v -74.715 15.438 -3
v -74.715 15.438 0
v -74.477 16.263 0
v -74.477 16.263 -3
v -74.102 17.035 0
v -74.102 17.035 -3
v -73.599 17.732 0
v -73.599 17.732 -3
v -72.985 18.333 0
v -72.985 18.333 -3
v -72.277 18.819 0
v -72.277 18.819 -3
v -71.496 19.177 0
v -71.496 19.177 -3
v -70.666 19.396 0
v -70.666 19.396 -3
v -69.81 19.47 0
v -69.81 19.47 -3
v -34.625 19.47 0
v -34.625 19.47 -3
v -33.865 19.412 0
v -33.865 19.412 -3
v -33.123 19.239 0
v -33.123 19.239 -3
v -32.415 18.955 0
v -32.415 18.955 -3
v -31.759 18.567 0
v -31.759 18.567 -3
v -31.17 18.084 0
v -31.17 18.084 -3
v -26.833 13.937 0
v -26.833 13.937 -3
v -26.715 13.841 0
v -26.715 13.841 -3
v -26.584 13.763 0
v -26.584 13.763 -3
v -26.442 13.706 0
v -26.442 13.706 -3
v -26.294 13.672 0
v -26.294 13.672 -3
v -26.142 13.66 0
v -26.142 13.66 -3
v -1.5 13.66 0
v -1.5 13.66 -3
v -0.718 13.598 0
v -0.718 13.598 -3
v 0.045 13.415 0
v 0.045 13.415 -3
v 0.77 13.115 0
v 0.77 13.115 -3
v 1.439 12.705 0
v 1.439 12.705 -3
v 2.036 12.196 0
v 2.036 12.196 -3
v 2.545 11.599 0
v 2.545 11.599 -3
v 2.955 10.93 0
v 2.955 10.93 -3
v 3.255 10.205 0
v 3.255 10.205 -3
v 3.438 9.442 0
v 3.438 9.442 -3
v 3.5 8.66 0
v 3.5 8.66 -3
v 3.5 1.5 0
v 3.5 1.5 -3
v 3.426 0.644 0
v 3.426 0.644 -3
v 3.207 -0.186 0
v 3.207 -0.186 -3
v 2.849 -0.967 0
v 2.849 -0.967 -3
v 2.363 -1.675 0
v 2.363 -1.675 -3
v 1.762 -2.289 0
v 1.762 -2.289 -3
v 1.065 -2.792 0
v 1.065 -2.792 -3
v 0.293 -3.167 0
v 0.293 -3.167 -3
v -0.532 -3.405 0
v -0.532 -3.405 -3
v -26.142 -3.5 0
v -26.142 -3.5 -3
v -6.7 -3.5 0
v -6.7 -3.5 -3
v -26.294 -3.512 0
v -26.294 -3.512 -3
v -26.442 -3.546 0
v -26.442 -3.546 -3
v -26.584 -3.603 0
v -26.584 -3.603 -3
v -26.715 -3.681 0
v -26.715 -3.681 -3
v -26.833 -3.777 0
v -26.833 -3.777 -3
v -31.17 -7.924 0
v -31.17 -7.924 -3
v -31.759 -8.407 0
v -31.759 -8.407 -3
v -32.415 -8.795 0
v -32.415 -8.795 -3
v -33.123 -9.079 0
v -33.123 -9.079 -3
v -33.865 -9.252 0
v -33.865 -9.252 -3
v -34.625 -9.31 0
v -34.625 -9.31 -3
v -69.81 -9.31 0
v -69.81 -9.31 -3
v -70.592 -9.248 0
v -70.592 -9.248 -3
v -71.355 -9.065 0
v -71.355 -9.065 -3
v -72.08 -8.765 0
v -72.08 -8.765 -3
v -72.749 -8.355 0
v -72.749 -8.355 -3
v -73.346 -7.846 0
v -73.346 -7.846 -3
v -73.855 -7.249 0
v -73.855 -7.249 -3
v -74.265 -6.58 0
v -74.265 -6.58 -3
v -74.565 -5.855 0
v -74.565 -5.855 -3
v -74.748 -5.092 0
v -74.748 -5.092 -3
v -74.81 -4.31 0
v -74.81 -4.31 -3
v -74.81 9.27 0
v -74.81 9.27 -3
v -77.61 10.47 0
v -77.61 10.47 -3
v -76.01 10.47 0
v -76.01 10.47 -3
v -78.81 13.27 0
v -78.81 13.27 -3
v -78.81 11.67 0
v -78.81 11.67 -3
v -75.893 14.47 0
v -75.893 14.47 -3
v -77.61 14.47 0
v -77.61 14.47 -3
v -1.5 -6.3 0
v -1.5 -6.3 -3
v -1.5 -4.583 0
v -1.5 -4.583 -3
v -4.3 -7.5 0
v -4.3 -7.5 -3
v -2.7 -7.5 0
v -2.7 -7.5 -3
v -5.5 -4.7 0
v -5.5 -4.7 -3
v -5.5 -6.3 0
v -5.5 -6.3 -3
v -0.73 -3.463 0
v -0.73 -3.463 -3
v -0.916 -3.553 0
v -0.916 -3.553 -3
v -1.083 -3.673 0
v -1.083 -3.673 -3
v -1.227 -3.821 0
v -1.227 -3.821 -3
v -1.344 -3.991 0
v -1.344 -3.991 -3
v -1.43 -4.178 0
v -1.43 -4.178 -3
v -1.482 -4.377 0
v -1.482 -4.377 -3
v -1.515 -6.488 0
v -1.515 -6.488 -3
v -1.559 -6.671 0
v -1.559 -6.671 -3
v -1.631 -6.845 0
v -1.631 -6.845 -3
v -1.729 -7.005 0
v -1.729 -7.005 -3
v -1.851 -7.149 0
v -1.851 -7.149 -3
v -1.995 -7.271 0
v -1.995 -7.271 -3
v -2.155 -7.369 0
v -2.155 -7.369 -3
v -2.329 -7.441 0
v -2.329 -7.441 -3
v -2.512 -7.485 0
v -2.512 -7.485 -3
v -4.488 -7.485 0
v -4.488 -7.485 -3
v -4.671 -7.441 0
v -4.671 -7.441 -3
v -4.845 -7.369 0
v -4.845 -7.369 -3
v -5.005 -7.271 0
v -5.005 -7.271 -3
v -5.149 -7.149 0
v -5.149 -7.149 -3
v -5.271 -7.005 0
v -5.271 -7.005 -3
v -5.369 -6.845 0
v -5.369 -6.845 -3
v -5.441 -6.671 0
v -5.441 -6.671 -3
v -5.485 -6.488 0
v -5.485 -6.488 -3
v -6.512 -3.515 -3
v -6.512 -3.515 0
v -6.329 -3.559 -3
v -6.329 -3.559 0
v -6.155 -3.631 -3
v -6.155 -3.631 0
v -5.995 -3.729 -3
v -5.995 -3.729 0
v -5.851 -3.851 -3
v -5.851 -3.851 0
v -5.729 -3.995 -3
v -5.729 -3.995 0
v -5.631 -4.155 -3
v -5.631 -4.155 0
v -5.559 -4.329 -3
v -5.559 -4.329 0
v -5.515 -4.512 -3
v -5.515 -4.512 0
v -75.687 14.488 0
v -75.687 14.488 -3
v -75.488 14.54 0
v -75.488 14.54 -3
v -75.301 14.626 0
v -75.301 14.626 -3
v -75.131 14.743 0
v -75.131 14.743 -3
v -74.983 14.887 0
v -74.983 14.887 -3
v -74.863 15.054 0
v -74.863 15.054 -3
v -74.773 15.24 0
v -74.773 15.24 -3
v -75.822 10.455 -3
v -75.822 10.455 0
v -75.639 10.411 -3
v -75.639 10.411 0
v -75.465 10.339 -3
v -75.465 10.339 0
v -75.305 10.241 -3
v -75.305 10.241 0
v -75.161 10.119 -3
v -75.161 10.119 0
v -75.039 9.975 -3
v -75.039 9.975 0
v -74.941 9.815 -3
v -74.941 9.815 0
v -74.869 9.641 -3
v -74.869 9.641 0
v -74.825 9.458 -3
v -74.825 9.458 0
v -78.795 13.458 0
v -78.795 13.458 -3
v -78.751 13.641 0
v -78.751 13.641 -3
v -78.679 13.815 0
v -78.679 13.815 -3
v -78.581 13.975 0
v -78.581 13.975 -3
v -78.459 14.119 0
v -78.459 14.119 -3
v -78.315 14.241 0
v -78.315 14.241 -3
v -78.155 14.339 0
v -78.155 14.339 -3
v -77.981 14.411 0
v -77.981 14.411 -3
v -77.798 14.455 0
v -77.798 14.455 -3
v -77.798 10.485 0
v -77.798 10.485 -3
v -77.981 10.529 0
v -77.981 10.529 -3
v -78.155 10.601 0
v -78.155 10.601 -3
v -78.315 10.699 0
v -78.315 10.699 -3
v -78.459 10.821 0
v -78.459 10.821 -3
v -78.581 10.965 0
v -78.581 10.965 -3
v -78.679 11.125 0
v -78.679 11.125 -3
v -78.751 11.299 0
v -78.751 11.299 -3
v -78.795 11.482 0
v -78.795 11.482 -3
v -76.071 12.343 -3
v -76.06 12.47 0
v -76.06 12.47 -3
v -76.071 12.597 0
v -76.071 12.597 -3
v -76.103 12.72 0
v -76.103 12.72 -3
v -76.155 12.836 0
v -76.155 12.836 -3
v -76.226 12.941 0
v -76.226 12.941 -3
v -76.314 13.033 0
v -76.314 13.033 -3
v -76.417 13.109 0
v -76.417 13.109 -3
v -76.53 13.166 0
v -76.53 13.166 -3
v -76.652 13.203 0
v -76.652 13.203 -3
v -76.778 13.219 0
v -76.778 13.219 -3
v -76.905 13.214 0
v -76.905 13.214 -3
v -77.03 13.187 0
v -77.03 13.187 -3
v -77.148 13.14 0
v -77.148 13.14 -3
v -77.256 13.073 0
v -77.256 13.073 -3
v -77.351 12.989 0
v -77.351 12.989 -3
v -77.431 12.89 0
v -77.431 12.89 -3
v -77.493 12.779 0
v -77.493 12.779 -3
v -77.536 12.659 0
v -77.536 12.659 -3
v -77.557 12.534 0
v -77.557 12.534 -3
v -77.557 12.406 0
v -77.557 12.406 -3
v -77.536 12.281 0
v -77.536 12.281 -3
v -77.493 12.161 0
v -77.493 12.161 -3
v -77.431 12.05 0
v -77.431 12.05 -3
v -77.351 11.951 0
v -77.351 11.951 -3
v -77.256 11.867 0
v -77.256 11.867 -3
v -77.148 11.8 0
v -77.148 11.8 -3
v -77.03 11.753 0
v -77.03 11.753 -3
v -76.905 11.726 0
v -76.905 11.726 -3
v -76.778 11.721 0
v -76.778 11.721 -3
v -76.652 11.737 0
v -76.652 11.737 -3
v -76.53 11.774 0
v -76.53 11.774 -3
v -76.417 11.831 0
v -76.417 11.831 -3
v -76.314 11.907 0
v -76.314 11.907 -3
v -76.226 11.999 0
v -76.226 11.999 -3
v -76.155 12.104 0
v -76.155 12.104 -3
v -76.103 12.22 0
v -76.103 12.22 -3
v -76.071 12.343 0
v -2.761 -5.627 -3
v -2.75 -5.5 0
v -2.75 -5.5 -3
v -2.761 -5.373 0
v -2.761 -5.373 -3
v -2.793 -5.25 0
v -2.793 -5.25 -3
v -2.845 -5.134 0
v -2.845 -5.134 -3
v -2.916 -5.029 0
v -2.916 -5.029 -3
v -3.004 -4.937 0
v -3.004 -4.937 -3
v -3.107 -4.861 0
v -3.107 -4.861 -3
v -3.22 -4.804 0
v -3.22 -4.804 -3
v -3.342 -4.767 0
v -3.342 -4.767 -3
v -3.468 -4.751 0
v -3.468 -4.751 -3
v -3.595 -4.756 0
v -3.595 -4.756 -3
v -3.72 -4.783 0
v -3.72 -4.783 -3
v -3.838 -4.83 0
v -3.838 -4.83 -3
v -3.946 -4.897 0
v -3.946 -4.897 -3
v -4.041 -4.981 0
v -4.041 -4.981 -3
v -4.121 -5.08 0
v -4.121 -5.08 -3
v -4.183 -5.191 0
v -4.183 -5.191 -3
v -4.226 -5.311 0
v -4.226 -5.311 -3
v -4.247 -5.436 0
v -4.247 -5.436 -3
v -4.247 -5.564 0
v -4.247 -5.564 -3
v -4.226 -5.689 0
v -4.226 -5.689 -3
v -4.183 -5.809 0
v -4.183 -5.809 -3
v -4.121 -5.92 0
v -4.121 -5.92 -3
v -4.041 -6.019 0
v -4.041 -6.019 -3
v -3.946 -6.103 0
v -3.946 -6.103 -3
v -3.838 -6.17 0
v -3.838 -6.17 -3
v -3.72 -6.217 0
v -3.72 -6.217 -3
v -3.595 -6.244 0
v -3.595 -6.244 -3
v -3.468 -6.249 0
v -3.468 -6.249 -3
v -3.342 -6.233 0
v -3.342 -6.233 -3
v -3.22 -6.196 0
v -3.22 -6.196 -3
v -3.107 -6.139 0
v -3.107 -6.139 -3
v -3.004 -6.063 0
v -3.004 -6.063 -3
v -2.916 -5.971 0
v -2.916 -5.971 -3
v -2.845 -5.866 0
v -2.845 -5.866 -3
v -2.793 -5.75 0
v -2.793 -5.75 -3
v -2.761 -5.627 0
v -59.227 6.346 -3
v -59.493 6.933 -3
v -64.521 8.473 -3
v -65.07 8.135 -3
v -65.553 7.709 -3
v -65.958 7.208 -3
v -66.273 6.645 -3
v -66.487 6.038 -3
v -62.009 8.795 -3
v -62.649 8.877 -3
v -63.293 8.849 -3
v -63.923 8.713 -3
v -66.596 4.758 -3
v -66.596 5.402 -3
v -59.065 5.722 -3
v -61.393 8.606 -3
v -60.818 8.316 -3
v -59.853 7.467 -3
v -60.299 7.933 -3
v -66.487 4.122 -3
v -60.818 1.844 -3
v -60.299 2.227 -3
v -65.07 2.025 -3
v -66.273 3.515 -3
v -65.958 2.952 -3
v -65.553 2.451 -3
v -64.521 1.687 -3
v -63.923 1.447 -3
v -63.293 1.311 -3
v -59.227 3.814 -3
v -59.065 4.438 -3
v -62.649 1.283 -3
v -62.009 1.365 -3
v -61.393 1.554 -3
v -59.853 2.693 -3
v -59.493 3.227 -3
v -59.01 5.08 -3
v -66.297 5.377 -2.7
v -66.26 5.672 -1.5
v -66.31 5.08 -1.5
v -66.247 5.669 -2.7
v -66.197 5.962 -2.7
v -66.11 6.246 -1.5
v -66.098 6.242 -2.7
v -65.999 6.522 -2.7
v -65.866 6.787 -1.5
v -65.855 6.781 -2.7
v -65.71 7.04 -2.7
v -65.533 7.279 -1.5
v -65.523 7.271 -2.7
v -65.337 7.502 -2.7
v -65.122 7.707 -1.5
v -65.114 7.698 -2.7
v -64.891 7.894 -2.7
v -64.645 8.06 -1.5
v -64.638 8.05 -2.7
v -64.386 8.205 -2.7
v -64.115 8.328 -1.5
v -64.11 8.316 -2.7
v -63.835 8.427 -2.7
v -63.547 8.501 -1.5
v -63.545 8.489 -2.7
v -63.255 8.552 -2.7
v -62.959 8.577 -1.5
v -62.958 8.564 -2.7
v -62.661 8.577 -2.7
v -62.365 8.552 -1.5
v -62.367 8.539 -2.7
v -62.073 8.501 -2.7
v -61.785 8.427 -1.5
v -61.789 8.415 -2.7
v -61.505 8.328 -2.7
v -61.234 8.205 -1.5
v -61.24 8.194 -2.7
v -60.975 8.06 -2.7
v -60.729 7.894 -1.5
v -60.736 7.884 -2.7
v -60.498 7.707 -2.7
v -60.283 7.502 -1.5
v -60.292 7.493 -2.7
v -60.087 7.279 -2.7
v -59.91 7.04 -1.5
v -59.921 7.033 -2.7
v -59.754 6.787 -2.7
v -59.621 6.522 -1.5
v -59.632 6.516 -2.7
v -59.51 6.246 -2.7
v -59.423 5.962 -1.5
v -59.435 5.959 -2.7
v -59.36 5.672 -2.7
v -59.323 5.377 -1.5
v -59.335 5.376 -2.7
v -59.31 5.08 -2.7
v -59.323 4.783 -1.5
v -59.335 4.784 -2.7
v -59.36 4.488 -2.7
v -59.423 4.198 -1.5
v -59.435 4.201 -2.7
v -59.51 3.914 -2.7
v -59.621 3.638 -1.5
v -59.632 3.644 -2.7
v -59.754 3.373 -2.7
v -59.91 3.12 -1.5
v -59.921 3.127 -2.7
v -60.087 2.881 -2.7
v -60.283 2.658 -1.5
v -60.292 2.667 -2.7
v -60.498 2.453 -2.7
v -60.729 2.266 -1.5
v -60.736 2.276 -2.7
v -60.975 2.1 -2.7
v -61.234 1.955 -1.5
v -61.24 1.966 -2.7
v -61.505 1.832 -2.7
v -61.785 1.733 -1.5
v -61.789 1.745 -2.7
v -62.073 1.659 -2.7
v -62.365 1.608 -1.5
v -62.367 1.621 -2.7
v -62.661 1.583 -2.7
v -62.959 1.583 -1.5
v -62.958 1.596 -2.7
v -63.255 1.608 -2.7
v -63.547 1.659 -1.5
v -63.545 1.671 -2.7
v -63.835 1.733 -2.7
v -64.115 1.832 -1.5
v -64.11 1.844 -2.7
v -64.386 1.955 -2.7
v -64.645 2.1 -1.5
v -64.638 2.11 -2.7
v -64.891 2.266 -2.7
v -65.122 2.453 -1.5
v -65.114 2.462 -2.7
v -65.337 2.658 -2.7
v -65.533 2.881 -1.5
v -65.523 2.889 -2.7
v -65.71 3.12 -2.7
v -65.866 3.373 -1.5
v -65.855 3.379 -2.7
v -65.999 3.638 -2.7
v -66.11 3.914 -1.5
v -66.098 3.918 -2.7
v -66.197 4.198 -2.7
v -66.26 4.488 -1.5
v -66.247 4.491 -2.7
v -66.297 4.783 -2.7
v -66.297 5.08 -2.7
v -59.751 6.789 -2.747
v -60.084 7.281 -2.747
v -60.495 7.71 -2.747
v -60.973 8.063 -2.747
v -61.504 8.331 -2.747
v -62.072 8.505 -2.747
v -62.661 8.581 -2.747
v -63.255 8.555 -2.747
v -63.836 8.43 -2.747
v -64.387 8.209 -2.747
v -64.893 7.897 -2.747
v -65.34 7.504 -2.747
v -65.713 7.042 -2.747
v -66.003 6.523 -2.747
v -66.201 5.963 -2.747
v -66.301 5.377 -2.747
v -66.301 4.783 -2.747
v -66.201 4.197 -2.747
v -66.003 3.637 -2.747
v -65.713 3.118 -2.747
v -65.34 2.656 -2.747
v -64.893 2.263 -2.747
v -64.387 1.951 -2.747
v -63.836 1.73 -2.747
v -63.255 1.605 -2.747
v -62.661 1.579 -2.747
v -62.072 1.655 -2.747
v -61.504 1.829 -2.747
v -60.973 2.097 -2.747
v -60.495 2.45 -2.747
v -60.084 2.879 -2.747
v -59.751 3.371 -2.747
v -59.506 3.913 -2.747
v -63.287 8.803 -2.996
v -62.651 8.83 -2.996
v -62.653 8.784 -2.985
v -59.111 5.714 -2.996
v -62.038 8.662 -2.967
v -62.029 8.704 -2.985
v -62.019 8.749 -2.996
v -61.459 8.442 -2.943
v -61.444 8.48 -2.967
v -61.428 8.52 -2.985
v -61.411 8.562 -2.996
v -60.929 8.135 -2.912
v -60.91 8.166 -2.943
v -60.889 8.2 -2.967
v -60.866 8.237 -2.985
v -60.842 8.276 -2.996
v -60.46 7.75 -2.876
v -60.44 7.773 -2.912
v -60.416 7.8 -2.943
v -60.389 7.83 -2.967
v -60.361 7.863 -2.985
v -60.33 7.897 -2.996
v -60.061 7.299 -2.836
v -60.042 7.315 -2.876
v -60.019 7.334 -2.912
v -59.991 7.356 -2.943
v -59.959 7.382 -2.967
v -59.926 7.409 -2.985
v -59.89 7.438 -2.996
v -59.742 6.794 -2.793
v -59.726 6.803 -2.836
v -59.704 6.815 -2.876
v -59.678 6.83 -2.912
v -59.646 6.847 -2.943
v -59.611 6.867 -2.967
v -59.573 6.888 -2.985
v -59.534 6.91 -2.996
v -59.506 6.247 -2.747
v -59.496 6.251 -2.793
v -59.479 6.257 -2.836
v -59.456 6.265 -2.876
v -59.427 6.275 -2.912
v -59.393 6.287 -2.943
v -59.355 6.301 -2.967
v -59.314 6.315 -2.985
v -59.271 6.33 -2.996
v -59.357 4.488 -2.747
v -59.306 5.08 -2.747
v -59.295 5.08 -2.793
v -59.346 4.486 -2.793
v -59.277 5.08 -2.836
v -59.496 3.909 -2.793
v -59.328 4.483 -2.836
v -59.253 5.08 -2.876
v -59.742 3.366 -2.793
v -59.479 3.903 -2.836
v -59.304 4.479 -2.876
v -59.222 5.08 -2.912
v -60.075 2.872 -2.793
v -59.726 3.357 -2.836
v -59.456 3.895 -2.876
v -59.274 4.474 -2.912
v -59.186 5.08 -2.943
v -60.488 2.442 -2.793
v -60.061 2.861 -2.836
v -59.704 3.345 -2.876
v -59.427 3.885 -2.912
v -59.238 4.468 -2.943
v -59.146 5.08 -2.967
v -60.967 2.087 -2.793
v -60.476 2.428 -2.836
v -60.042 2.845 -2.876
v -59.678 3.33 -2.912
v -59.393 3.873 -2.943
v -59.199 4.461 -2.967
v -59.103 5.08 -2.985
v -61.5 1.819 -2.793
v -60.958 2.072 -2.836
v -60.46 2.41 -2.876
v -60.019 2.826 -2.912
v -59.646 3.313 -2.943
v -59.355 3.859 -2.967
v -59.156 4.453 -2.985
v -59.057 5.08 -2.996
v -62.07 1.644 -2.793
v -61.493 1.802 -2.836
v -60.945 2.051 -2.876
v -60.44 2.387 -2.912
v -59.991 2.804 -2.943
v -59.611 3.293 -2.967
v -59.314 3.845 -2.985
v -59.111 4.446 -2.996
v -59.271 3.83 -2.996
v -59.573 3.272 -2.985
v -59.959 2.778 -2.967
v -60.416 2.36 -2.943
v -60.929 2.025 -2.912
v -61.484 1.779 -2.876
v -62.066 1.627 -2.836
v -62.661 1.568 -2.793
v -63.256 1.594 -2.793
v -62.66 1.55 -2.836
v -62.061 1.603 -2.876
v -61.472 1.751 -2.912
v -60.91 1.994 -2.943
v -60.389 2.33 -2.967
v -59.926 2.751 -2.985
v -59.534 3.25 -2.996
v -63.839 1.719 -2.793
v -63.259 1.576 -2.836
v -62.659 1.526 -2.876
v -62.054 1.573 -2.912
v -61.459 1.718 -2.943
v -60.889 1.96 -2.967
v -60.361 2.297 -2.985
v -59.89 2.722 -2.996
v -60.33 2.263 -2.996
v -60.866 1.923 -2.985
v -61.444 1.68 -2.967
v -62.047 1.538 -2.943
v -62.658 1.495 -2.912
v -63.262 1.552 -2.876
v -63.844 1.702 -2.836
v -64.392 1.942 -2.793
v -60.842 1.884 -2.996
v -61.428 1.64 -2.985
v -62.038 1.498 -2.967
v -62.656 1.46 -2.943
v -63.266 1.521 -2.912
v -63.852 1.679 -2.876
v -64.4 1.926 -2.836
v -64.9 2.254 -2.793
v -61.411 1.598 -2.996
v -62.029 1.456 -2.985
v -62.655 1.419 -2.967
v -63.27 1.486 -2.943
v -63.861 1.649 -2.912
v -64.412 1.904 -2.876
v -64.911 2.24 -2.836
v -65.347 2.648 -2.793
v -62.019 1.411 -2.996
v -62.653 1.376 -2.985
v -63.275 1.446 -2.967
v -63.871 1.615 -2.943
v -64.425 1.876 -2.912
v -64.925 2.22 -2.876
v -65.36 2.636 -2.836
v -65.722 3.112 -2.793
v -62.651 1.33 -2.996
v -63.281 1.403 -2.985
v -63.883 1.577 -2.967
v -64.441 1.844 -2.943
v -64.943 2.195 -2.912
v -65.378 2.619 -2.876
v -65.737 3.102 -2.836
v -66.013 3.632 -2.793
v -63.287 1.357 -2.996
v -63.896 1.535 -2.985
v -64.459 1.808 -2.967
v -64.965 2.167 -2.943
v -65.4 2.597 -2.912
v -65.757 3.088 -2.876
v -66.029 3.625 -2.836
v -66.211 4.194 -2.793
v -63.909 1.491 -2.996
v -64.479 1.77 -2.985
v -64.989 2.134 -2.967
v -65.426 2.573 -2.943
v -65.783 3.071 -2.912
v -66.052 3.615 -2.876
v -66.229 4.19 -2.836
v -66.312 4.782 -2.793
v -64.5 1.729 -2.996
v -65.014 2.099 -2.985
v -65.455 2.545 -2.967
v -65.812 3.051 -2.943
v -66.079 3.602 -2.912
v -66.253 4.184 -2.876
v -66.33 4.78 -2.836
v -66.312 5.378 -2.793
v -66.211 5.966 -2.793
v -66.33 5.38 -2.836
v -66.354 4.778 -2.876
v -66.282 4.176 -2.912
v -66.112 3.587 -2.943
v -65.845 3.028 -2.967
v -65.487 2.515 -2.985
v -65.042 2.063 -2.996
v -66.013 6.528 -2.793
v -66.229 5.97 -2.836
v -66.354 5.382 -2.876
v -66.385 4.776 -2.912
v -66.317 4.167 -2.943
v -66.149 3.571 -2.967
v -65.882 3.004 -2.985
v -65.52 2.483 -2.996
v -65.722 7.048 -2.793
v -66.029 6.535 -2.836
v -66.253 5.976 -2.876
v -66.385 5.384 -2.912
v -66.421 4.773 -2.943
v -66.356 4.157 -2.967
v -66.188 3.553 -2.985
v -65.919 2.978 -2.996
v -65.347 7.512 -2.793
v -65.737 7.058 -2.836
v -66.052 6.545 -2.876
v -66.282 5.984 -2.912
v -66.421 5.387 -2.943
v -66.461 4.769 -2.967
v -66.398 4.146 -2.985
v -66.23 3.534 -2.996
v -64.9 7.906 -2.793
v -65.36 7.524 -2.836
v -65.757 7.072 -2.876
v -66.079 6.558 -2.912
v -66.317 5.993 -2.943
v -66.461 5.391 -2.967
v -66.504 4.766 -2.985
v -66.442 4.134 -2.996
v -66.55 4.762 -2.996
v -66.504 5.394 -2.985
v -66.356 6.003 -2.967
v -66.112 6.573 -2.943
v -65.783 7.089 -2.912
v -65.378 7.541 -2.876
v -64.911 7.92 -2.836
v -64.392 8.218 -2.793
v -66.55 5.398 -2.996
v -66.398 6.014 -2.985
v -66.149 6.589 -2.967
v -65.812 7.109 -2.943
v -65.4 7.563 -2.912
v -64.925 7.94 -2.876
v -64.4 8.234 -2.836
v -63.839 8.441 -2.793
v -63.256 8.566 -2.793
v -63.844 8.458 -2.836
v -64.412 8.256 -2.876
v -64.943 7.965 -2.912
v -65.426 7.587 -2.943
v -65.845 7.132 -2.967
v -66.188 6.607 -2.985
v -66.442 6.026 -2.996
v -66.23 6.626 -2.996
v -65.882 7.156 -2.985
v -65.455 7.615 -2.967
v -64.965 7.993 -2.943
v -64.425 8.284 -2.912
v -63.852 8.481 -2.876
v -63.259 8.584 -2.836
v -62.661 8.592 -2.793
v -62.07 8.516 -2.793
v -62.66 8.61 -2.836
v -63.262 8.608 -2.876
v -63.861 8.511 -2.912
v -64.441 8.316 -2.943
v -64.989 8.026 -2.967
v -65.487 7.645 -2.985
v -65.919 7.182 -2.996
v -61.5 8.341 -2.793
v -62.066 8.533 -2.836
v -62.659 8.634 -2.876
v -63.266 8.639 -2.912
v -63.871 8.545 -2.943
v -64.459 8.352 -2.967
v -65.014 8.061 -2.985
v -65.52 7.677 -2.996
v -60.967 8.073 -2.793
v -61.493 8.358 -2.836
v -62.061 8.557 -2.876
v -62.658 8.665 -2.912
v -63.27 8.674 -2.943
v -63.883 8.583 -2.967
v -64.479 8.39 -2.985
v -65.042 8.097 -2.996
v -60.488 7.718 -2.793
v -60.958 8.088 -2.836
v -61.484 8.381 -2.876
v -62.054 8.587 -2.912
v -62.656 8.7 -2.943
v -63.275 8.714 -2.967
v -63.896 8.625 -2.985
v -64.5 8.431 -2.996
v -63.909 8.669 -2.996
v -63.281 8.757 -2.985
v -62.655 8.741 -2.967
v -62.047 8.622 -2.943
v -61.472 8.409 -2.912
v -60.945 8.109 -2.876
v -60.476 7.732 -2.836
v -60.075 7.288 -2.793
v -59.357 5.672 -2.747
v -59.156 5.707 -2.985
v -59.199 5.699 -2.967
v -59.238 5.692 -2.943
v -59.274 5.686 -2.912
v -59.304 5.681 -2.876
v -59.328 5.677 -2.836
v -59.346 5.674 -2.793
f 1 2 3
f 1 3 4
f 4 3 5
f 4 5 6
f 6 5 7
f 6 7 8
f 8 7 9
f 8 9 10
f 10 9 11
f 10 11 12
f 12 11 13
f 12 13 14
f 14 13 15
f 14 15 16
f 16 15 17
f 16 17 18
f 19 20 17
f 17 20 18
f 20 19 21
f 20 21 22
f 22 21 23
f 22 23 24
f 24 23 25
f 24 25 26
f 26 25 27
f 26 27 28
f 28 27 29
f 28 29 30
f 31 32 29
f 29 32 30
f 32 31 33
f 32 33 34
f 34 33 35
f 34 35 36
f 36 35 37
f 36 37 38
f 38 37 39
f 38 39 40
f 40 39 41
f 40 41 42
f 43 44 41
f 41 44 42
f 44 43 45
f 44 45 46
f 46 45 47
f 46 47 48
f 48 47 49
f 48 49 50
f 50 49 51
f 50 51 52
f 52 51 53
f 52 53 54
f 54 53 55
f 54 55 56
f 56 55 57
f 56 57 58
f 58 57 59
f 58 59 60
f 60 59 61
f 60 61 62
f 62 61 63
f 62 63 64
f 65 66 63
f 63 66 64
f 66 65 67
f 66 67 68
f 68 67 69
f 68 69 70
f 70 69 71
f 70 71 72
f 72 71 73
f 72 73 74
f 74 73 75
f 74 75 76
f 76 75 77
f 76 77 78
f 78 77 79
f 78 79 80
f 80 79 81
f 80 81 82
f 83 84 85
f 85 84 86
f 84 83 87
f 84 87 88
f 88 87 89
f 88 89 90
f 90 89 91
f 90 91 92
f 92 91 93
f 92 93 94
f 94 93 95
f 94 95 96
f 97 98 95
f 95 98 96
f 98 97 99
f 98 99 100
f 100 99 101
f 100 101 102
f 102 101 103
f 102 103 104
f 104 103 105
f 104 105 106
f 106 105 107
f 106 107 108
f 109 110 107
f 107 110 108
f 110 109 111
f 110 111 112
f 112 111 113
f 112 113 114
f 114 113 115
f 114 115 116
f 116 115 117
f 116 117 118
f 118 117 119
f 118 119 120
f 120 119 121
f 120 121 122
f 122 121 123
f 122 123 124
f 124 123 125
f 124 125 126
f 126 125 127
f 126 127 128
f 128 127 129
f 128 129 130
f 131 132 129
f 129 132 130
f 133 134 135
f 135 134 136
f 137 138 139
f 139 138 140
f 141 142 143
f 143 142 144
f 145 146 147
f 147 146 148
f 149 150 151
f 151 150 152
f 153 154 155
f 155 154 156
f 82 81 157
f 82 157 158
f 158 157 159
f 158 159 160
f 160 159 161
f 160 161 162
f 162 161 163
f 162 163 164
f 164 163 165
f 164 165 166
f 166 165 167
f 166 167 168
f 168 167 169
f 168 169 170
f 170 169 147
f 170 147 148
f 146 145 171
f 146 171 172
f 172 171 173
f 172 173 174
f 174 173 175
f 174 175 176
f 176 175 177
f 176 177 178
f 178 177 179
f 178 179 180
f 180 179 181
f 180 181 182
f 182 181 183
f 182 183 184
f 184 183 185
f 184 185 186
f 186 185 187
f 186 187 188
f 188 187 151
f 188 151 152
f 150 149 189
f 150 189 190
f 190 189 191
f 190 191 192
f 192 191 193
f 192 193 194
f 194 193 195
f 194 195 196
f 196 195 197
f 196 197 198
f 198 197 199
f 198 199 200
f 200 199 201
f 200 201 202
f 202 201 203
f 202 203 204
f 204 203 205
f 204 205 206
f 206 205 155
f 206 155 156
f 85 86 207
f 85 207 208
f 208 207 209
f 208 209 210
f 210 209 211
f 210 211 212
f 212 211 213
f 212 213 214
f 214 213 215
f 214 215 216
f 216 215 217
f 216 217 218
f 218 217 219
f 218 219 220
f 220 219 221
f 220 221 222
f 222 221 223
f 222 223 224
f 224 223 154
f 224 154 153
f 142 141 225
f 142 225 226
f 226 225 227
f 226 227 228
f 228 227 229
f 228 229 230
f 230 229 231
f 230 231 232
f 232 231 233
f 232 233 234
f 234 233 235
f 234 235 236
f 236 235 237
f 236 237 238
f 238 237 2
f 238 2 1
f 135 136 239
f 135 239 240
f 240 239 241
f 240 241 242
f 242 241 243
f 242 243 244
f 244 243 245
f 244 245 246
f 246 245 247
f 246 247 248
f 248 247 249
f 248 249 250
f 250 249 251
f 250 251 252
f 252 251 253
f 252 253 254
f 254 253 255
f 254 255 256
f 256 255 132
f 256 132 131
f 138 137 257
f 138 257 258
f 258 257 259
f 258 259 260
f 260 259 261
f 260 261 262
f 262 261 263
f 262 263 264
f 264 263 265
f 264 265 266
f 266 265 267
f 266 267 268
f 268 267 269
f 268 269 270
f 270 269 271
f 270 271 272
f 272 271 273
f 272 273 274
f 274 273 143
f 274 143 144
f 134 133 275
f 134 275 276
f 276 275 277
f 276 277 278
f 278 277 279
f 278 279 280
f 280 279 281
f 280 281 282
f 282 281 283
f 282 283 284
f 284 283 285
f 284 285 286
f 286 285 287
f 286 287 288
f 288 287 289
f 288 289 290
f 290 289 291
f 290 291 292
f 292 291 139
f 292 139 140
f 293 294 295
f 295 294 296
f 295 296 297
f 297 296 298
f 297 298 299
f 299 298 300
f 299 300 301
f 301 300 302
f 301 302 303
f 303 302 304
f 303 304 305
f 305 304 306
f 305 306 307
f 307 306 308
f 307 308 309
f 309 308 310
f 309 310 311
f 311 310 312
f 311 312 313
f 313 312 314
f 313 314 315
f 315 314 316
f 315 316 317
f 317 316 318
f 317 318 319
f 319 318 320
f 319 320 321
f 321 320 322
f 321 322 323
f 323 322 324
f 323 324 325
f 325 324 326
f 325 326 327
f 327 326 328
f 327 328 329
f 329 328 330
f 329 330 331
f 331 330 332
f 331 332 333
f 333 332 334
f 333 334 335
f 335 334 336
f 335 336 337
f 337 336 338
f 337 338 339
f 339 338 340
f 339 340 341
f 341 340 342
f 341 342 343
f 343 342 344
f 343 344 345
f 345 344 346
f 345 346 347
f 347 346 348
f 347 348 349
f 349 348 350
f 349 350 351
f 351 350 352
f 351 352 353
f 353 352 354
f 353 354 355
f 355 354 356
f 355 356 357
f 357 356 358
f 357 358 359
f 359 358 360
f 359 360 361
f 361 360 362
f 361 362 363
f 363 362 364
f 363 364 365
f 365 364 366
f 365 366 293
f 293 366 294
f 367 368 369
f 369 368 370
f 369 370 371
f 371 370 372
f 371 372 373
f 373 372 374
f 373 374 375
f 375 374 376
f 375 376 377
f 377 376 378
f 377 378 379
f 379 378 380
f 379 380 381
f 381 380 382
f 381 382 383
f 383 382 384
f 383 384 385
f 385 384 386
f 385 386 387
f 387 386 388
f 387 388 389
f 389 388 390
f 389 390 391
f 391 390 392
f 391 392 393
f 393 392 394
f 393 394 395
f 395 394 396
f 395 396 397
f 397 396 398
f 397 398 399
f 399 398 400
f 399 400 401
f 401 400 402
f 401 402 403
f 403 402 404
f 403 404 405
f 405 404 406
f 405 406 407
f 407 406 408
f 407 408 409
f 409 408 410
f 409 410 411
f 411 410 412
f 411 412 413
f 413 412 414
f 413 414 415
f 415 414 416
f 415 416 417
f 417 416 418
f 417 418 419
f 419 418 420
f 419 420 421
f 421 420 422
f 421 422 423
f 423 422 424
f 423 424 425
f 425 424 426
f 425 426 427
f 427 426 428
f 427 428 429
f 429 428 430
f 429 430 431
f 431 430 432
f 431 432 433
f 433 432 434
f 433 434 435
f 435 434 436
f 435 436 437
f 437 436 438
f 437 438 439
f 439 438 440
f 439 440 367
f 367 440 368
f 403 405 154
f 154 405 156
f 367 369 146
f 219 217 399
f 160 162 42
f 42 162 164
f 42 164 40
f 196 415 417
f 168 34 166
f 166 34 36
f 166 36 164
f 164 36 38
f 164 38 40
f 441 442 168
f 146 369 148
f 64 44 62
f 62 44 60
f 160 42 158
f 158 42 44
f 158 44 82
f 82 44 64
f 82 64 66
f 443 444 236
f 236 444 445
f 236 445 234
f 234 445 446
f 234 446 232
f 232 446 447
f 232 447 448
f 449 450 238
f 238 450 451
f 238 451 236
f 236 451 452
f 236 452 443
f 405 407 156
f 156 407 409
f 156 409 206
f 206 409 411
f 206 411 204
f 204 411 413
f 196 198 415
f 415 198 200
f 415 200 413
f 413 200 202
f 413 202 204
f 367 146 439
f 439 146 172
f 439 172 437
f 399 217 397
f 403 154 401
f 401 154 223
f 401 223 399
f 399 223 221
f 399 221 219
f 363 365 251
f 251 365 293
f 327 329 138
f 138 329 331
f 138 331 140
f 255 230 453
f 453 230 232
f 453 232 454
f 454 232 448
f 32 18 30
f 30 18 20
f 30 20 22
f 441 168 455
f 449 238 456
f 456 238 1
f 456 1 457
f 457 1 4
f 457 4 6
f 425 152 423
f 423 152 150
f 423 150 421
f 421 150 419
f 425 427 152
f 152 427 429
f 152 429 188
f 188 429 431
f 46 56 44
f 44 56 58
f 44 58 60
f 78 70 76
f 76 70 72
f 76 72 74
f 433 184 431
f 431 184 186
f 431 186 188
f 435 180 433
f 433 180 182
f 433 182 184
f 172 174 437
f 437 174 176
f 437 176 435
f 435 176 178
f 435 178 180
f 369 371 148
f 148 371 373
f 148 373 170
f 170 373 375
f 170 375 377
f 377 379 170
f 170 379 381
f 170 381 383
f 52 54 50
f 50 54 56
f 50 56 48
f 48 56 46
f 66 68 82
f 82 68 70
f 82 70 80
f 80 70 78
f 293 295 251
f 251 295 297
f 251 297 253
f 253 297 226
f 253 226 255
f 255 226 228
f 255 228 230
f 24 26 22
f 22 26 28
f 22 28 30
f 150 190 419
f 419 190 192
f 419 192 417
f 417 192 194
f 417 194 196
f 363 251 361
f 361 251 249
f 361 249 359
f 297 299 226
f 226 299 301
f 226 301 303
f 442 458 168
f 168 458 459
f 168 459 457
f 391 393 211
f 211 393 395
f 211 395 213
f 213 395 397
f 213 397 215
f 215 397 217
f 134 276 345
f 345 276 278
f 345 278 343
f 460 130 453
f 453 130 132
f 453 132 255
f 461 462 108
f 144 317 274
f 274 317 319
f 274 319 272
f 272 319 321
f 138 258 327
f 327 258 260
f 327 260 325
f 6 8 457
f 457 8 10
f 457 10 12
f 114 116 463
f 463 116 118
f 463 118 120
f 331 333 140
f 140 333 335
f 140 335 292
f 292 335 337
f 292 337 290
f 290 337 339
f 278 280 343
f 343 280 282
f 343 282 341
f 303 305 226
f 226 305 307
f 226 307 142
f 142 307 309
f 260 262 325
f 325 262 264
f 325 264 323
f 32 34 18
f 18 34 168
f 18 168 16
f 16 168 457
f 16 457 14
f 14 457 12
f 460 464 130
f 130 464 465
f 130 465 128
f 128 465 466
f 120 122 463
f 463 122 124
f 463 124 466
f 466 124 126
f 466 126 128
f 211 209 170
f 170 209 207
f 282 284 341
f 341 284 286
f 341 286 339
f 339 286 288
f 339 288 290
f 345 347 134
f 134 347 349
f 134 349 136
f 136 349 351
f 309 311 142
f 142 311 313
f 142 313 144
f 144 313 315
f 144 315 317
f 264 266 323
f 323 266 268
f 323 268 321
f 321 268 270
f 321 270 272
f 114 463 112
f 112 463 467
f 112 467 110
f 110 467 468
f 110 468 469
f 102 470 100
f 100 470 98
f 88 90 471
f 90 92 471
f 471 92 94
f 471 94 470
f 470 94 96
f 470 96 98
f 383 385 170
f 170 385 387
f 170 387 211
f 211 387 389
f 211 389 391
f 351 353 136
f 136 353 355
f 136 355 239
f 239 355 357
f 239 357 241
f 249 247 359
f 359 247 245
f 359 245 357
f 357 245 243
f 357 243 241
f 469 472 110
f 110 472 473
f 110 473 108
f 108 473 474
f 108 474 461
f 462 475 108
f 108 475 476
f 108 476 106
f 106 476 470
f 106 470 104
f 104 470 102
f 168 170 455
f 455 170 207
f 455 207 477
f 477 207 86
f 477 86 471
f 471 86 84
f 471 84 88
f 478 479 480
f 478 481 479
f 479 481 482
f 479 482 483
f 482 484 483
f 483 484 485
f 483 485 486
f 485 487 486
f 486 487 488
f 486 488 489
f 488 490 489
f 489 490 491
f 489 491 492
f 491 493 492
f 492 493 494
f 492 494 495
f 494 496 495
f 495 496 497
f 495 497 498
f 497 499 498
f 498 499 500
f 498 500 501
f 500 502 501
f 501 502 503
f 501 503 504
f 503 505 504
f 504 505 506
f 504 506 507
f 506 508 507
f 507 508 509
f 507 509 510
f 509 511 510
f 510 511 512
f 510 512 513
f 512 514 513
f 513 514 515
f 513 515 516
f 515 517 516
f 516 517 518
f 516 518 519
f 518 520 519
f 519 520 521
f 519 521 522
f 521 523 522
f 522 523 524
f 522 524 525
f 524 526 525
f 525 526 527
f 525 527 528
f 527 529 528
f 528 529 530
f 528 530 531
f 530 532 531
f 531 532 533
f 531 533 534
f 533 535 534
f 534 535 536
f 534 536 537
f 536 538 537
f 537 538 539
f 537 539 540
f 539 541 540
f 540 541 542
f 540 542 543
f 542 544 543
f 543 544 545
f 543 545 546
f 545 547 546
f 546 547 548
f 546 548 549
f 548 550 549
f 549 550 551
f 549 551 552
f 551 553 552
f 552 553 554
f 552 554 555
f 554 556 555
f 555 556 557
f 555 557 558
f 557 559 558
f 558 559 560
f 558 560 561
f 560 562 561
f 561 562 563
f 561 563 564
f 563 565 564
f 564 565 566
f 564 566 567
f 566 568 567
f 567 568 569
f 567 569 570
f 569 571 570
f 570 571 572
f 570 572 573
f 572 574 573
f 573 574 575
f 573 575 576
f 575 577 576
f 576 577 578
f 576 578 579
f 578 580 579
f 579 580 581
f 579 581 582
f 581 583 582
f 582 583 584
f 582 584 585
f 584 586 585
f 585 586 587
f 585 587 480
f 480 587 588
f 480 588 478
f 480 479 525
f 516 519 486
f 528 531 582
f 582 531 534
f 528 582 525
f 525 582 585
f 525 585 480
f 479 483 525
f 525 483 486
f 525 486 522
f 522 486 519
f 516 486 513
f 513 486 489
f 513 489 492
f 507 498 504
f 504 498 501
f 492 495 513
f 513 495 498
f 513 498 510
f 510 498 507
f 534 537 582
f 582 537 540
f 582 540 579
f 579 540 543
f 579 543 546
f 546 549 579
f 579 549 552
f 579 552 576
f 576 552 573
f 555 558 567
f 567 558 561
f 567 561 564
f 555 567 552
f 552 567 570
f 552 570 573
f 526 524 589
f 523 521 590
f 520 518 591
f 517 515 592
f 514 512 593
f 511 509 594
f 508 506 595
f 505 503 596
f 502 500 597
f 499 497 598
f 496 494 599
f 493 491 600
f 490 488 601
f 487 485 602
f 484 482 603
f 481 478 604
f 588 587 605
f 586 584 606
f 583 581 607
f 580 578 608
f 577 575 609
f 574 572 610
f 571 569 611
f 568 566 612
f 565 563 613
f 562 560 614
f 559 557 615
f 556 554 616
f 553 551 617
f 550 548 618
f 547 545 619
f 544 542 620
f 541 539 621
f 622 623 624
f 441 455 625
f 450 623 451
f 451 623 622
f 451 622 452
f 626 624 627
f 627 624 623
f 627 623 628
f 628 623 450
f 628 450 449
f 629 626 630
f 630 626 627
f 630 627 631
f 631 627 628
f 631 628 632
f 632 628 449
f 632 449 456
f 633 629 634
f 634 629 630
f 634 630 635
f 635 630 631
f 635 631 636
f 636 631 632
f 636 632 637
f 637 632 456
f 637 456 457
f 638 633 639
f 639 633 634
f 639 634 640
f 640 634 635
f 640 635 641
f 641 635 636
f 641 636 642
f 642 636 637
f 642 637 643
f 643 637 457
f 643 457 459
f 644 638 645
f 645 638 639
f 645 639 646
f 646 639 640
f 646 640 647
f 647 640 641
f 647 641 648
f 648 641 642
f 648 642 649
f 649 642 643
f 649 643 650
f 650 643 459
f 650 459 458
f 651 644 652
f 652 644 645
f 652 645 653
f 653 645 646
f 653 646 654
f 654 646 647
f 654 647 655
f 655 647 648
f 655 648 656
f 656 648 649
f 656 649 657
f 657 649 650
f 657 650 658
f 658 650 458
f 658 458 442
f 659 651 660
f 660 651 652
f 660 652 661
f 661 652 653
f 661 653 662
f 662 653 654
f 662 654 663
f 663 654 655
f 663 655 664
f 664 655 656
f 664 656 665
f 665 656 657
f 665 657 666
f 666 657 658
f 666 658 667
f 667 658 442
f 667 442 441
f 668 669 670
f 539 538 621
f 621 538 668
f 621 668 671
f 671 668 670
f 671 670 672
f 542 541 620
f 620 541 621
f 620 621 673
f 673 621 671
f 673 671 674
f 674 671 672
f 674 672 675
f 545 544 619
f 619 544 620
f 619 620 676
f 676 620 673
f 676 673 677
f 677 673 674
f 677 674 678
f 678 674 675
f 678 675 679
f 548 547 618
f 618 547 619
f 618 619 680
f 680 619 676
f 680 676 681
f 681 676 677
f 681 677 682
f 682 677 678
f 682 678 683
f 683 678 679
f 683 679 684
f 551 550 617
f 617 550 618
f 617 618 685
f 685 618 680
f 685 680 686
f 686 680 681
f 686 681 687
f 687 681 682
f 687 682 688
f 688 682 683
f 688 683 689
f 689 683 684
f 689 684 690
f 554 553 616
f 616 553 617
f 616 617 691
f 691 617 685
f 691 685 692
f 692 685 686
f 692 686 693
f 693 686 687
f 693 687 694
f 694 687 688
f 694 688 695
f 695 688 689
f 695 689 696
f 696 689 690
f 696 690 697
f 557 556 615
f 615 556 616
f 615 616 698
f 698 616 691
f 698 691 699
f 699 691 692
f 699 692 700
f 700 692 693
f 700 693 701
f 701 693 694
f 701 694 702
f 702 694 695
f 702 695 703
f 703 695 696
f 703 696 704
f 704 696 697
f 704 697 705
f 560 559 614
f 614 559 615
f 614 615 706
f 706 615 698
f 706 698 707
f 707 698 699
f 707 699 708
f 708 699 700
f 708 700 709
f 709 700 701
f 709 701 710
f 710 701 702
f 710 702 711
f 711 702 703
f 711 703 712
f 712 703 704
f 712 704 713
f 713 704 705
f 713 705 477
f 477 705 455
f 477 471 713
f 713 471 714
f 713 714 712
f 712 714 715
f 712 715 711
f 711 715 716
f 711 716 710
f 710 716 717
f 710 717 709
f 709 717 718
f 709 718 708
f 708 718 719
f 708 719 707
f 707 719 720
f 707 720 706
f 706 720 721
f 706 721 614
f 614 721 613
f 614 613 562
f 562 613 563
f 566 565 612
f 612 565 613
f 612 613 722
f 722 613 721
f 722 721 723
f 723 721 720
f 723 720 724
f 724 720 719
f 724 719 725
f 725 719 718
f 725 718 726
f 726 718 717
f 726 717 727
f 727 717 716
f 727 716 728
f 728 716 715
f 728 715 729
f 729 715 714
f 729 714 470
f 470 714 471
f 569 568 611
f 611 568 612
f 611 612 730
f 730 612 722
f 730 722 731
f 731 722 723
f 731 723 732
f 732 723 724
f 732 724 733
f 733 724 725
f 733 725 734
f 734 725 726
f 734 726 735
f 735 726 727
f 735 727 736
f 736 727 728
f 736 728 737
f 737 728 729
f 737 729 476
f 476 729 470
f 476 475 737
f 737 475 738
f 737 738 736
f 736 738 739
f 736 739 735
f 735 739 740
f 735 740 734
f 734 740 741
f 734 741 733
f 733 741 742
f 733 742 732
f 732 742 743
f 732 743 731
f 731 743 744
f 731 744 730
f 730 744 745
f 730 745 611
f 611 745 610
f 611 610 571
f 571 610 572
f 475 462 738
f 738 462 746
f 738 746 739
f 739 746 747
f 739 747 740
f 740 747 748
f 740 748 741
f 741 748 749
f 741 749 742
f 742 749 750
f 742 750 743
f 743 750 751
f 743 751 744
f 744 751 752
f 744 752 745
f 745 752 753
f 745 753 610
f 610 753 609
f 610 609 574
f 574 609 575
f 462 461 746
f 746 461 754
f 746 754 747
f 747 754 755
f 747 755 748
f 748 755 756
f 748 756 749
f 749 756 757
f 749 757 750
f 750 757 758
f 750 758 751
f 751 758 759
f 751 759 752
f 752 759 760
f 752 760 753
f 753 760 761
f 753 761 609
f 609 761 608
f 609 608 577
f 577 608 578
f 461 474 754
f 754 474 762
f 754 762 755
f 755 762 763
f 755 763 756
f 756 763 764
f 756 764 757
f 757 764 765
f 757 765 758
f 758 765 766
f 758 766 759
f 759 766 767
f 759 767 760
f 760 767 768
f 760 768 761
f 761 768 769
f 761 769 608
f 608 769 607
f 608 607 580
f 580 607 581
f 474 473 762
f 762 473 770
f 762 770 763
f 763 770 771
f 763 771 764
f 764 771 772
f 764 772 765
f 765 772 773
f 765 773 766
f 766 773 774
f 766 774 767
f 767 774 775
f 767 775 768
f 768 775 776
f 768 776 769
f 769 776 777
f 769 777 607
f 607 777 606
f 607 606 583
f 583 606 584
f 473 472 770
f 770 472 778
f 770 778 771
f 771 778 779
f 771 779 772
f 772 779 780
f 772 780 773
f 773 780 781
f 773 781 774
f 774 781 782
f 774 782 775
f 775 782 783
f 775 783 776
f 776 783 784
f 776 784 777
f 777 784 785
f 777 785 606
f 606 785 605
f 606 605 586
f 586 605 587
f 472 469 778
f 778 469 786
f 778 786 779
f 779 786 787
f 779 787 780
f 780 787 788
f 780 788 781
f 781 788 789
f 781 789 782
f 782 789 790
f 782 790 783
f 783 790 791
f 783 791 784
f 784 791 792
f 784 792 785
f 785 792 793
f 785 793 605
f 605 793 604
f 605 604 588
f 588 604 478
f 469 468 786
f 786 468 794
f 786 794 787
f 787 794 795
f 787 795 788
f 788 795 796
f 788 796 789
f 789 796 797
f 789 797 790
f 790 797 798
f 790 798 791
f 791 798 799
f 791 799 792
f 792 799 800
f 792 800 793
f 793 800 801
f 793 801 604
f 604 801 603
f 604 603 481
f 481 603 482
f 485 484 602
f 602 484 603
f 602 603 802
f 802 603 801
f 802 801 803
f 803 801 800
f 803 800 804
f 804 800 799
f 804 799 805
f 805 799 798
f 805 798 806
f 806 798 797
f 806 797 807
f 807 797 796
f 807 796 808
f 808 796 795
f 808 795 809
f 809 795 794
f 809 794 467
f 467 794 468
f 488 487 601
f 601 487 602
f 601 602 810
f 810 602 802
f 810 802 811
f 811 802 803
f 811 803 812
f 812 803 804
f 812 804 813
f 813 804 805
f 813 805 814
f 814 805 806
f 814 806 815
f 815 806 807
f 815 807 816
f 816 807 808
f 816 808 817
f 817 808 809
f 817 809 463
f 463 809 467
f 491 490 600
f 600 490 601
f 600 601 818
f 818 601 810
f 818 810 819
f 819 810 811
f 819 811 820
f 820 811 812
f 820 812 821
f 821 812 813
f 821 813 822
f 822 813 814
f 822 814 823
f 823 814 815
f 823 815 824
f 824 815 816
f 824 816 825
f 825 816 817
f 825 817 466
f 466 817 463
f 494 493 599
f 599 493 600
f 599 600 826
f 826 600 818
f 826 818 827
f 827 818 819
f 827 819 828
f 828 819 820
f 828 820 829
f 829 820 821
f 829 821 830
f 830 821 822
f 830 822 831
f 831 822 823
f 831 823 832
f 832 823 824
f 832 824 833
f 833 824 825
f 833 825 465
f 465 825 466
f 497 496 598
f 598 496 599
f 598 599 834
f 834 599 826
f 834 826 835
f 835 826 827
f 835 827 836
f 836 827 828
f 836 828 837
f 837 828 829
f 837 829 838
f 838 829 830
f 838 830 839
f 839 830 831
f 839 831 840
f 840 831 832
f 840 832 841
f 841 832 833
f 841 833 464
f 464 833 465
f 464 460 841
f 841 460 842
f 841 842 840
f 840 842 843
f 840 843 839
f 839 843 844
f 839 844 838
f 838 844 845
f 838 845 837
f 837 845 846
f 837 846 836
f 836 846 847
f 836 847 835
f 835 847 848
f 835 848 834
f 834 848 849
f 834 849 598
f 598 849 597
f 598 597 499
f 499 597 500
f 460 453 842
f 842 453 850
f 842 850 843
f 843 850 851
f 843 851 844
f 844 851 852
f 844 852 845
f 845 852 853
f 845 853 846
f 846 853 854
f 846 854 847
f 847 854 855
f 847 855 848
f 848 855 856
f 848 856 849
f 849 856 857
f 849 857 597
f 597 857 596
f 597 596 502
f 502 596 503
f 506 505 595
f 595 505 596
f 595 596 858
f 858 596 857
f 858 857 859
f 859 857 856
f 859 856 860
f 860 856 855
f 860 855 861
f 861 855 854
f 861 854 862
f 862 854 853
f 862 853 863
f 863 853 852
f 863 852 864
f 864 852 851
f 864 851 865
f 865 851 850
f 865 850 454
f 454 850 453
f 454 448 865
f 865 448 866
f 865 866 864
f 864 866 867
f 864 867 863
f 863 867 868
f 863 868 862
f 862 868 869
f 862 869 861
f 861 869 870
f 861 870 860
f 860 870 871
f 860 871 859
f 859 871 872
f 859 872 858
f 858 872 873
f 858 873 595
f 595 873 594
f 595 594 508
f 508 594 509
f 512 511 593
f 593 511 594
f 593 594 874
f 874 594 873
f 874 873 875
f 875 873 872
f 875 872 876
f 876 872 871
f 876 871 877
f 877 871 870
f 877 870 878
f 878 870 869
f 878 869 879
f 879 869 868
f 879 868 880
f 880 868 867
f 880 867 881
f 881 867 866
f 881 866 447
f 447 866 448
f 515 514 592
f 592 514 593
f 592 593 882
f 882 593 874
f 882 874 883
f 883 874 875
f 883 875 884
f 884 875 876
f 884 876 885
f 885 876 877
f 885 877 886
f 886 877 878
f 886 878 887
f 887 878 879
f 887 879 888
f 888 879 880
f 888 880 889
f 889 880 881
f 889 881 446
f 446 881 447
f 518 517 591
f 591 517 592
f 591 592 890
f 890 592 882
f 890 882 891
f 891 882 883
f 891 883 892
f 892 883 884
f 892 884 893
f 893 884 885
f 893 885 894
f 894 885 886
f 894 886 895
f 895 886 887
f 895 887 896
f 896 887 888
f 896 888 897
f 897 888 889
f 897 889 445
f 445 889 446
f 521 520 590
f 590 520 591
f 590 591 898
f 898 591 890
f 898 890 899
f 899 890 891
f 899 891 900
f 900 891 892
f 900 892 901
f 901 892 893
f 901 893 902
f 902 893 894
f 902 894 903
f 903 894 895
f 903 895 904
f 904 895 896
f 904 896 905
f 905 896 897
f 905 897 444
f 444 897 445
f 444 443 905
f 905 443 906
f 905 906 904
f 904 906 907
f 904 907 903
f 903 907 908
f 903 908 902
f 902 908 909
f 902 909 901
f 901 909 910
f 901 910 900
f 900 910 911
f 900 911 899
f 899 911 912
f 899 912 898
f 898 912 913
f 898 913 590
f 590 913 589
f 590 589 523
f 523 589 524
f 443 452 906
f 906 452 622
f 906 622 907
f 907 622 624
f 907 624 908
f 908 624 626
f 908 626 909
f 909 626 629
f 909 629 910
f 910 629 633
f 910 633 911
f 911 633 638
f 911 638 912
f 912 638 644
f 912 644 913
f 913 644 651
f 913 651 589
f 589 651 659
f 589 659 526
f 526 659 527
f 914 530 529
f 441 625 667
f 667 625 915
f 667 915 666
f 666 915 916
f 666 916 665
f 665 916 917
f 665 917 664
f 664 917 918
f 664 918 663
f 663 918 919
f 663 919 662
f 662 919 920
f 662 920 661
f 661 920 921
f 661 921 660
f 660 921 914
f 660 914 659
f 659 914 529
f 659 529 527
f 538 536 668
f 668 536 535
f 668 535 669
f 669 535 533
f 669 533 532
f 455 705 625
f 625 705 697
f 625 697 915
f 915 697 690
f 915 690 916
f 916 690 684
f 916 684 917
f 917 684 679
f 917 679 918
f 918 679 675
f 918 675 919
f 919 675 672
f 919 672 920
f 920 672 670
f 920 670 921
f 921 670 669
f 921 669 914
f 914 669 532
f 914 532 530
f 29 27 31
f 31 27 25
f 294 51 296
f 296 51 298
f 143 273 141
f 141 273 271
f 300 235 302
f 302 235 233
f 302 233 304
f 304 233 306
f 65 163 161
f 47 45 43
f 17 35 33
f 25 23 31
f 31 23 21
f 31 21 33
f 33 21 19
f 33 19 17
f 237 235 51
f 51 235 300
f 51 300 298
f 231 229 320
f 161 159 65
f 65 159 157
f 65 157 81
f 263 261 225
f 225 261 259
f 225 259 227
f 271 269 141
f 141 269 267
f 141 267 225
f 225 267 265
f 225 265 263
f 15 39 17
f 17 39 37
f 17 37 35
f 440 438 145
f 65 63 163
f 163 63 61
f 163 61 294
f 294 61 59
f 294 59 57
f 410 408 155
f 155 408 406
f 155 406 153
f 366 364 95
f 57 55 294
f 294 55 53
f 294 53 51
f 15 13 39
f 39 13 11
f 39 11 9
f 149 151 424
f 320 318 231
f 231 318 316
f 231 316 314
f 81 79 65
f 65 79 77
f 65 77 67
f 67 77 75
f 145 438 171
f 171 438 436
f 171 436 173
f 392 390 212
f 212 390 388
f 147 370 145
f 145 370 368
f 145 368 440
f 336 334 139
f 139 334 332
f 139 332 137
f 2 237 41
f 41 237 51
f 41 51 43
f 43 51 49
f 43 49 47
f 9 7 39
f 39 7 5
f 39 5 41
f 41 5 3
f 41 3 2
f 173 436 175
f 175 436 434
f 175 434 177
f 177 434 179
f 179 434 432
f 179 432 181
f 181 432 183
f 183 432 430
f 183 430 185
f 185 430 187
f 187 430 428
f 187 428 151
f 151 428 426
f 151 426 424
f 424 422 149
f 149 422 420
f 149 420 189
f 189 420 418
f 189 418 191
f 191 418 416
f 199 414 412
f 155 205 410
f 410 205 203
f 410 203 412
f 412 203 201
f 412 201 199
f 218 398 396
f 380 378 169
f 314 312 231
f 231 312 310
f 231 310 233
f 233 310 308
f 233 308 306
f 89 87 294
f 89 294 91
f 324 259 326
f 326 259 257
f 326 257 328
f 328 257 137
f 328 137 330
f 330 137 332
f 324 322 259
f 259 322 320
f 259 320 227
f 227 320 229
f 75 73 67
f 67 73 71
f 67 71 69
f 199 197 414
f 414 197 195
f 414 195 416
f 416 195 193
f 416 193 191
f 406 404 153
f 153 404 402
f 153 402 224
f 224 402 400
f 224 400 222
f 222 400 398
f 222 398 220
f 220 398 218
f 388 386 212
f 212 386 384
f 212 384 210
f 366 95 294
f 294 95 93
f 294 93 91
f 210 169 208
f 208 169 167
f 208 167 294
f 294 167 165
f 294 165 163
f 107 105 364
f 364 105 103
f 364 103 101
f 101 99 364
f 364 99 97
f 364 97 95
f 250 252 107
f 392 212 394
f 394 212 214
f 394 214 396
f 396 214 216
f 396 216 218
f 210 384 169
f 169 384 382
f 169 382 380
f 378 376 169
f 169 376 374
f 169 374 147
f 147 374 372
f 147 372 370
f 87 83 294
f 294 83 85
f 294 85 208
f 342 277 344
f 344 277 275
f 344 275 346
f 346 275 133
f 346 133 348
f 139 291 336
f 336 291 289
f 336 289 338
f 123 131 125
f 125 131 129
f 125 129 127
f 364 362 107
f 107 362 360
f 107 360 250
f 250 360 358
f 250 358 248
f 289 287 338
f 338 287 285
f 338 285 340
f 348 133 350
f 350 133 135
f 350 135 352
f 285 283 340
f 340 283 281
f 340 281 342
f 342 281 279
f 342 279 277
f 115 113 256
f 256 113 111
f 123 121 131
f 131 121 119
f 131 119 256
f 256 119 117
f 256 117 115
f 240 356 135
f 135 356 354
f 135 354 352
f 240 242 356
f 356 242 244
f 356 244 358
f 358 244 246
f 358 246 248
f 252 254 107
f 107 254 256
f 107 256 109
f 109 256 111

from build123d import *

# Parameters (mm, degrees)
BOSS_EXTRUDE2_DEPTH      = 12
BOSS_EXTRUDE2_DEPTH_BACK = 3
BOSS_EXTRUDE3_DEPTH      = 3
SKETCH8_W                = 4
SKETCH8_H                = 4
BOSS_EXTRUDE4_DEPTH      = 15
FILLET2_R                = 1.2
SKETCH9_R                = 0.75
CUT_EXTRUDE3_DEPTH       = 16
SKETCH10_R               = 3.5
CUT_EXTRUDE4_DEPTH       = 1.5
FILLET3_R                = 0.3
CUT_EXTRUDE5_DEPTH       = 12


with BuildPart() as part:
    # Sketch3 → Boss-Extrude2 (new body, two sides)
    with BuildSketch(Plane.XY) as boss_extrude2_sk:
        with BuildLine():
            Line((-69.81, 19.47), (-34.625063383, 19.47))
            ThreePointArc((-34.625063383, 19.47), (-32.763487521, 19.110531791), (-31.169582594, 18.083814123))
            Line((-31.169582594, 18.083814123), (-26.833005647, 13.937237175))
            ThreePointArc((-26.833005647, 13.937237175), (-26.514224661, 13.731893642), (-26.141909489, 13.66))
            Line((-26.141909489, 13.66), (-1.5, 13.66))
            ThreePointArc((-1.5, 13.66), (2.035533906, 12.195533906), (3.5, 8.66))
            Line((3.5, 8.66), (3.5, 1.5))
            ThreePointArc((3.5, 1.5), (2.035533906, -2.035533906), (-1.5, -3.5))
            Line((-1.5, -3.5), (-26.141909489, -3.5))
            ThreePointArc((-26.141909489, -3.5), (-26.514224661, -3.571893642), (-26.833005647, -3.777237175))
            Line((-26.833005647, -3.777237175), (-31.169582594, -7.923814123))
            ThreePointArc((-31.169582594, -7.923814123), (-32.763487521, -8.950531791), (-34.625063383, -9.31))
            Line((-34.625063383, -9.31), (-69.81, -9.31))
            ThreePointArc((-69.81, -9.31), (-73.345533906, -7.845533906), (-74.81, -4.31))
            Line((-74.81, -4.31), (-74.81, 14.47))
            ThreePointArc((-74.81, 14.47), (-73.345533906, 18.005533906), (-69.81, 19.47))
        make_face()
        with BuildLine():
            Line((-69.81, 17.47), (-34.625063383, 17.47))
            ThreePointArc((-34.625063383, 17.47), (-33.508117866, 17.254319075), (-32.55177491, 16.638288474))
            Line((-32.55177491, 16.638288474), (-28.215197962, 12.491711526))
            ThreePointArc((-28.215197962, 12.491711526), (-27.258855006, 11.875680925), (-26.141909489, 11.66))
            Line((-26.141909489, 11.66), (-1.5, 11.66))
            ThreePointArc((-1.5, 11.66), (0.621320344, 10.781320344), (1.5, 8.66))
            Line((1.5, 8.66), (1.5, 1.5))
            ThreePointArc((1.5, 1.5), (0.621320344, -0.621320344), (-1.5, -1.5))
            Line((-1.5, -1.5), (-26.141909489, -1.5))
            ThreePointArc((-26.141909489, -1.5), (-27.258855006, -1.715680925), (-28.215197962, -2.331711526))
            Line((-28.215197962, -2.331711526), (-32.55177491, -6.478288474))
            ThreePointArc((-32.55177491, -6.478288474), (-33.508117866, -7.094319075), (-34.625063383, -7.31))
            Line((-34.625063383, -7.31), (-69.81, -7.31))
            ThreePointArc((-69.81, -7.31), (-71.931320344, -6.431320344), (-72.81, -4.31))
            Line((-72.81, -4.31), (-72.81, 14.47))
            ThreePointArc((-72.81, 14.47), (-71.931320344, 16.591320344), (-69.81, 17.47))
        make_face(mode=Mode.SUBTRACT)
    extrude(amount=BOSS_EXTRUDE2_DEPTH)
    extrude(boss_extrude2_sk.sketch, amount=-BOSS_EXTRUDE2_DEPTH_BACK)

    # Sketch5 → Boss-Extrude3 (add)
    with BuildSketch(Plane(origin=(0, 0, -3), x_dir=(-1, 0, 0), z_dir=(0, 0, -1))):
        with BuildLine():
            Line((72.81, 14.47), (72.81, -4.31))
            ThreePointArc((72.81, -4.31), (71.931320344, -6.431320344), (69.81, -7.31))
            Line((69.81, -7.31), (34.625063383, -7.31))
            ThreePointArc((34.625063383, -7.31), (33.508117866, -7.094319075), (32.55177491, -6.478288474))
            Line((32.55177491, -6.478288474), (28.215197962, -2.331711526))
            ThreePointArc((28.215197962, -2.331711526), (27.258855006, -1.715680925), (26.141909489, -1.5))
            Line((26.141909489, -1.5), (1.5, -1.5))
            ThreePointArc((1.5, -1.5), (-0.621320344, -0.621320344), (-1.5, 1.5))
            Line((-1.5, 1.5), (-1.5, 8.66))
            ThreePointArc((-1.5, 8.66), (-0.621320344, 10.781320344), (1.5, 11.66))
            Line((1.5, 11.66), (26.141909489, 11.66))
            ThreePointArc((26.141909489, 11.66), (27.258855006, 11.875680925), (28.215197962, 12.491711526))
            Line((28.215197962, 12.491711526), (32.55177491, 16.638288474))
            ThreePointArc((32.55177491, 16.638288474), (33.508117866, 17.254319075), (34.625063383, 17.47))
            Line((34.625063383, 17.47), (69.81, 17.47))
            ThreePointArc((69.81, 17.47), (71.931320344, 16.591320344), (72.81, 14.47))
        make_face()
    extrude(amount=-BOSS_EXTRUDE3_DEPTH)

    # Sketch8 → Boss-Extrude4 (add, through all)
    with BuildSketch(Plane.XY.offset(12)):
        with Locations((-76.81, 12.47)):
            Rectangle(SKETCH8_W, SKETCH8_H)
        with Locations((-3.5, -5.5)):
            Rectangle(SKETCH8_W, SKETCH8_H)
    extrude(amount=-BOSS_EXTRUDE4_DEPTH)

    # Fillet2
    fillet2_edges = [part.edges().sort_by_distance(p)[0] for p in [
        (-74.81, 10.47, 4.5),
        (-78.81, 10.47, 4.5),
        (-78.81, 14.47, 4.5),
        (-1.5, -7.5, 4.5),
        (-5.5, -7.5, 4.5),
        (-5.5, -3.5, 4.5),
        (-1.5, -3.5, 4.5),
        (-74.81, 14.47, 4.5),
    ]]
    fillet(fillet2_edges, radius=FILLET2_R)

    # Sketch9 → Cut-Extrude3 (cut, through all)
    with BuildSketch(Plane.XY.offset(12)):
        with Locations((-76.81, 12.47)):
            Circle(SKETCH9_R)
        with Locations((-3.5, -5.5)):
            Circle(SKETCH9_R)
    extrude(amount=-CUT_EXTRUDE3_DEPTH, mode=Mode.SUBTRACT)

    # Sketch10 → Cut-Extrude4 (cut)
    with BuildSketch(Plane(origin=(0, 0, -3), x_dir=(-1, 0, 0), z_dir=(0, 0, -1))):
        with Locations((62.81, 5.08)):
            Circle(SKETCH10_R)
    extrude(amount=-CUT_EXTRUDE4_DEPTH, mode=Mode.SUBTRACT)

    # Fillet3
    fillet3_edges = [part.edges().sort_by_distance(p)[0] for p in [
        (-59.31, 5.08, -3),
    ]]
    fillet(fillet3_edges, radius=FILLET3_R)

    # Sketch11 → Cut-Extrude5 (cut)
    with BuildSketch(Plane.XY.offset(12)):
        with BuildLine():
            Line((-4.3, -7.5), (-2.7, -7.5))
            ThreePointArc((-2.7, -7.5), (-1.851471863, -7.148528137), (-1.5, -6.3))
            Line((-1.5, -6.3), (-1.5, -4.58276253))
            ThreePointArc((-1.5, -4.58276253), (-1.227013937, -3.820761768), (-0.532258065, -3.405453653))
            ThreePointArc((-0.532258065, -3.405453653), (2.362558069, -1.675003175), (3.5, 1.5))
            Line((3.5, 1.5), (3.5, 8.66))
            ThreePointArc((3.5, 8.66), (2.035533906, 12.195533906), (-1.5, 13.66))
            Line((-1.5, 13.66), (-26.141909489, 13.66))
            ThreePointArc((-26.141909489, 13.66), (-26.514224661, 13.731893642), (-26.833005647, 13.937237175))
            Line((-26.833005647, 13.937237175), (-31.169582594, 18.083814123))
            ThreePointArc((-31.169582594, 18.083814123), (-32.763487521, 19.110531791), (-34.625063383, 19.47))
            Line((-34.625063383, 19.47), (-69.81, 19.47))
            ThreePointArc((-69.81, 19.47), (-72.985003175, 18.332558069), (-74.715453653, 15.437741935))
            ThreePointArc((-74.715453653, 15.437741935), (-75.130761768, 14.742986063), (-75.89276253, 14.47))
            Line((-75.89276253, 14.47), (-77.61, 14.47))
            ThreePointArc((-77.61, 14.47), (-78.458528137, 14.118528137), (-78.81, 13.27))
            Line((-78.81, 13.27), (-78.81, 11.67))
            ThreePointArc((-78.81, 11.67), (-78.458528137, 10.821471863), (-77.61, 10.47))
            Line((-77.61, 10.47), (-76.01, 10.47))
            ThreePointArc((-76.01, 10.47), (-75.161471863, 10.118528137), (-74.81, 9.27))
            Line((-74.81, 9.27), (-74.81, -4.31))
            ThreePointArc((-74.81, -4.31), (-73.345533906, -7.845533906), (-69.81, -9.31))
            Line((-69.81, -9.31), (-34.625063383, -9.31))
            ThreePointArc((-34.625063383, -9.31), (-32.763487521, -8.950531791), (-31.169582594, -7.923814123))
            Line((-31.169582594, -7.923814123), (-26.833005647, -3.777237175))
            ThreePointArc((-26.833005647, -3.777237175), (-26.514224661, -3.571893642), (-26.141909489, -3.5))
            Line((-26.141909489, -3.5), (-6.7, -3.5))
            ThreePointArc((-6.7, -3.5), (-5.851471863, -3.851471863), (-5.5, -4.7))
            Line((-5.5, -4.7), (-5.5, -6.3))
            ThreePointArc((-5.5, -6.3), (-5.148528137, -7.148528137), (-4.3, -7.5))
        make_face()
        with BuildLine():
            Line((-69.81, -7.31), (-34.625063383, -7.31))
            ThreePointArc((-34.625063383, -7.31), (-33.508117866, -7.094319075), (-32.55177491, -6.478288474))
            Line((-32.55177491, -6.478288474), (-28.215197962, -2.331711526))
            ThreePointArc((-28.215197962, -2.331711526), (-27.258855006, -1.715680925), (-26.141909489, -1.5))
            Line((-26.141909489, -1.5), (-1.5, -1.5))
            ThreePointArc((-1.5, -1.5), (0.621320344, -0.621320344), (1.5, 1.5))
            Line((1.5, 1.5), (1.5, 8.66))
            ThreePointArc((1.5, 8.66), (0.621320344, 10.781320344), (-1.5, 11.66))
            Line((-1.5, 11.66), (-26.141909489, 11.66))
            ThreePointArc((-26.141909489, 11.66), (-27.258855006, 11.875680925), (-28.215197962, 12.491711526))
            Line((-28.215197962, 12.491711526), (-32.55177491, 16.638288474))
            ThreePointArc((-32.55177491, 16.638288474), (-33.508117866, 17.254319075), (-34.625063383, 17.47))
            Line((-34.625063383, 17.47), (-69.81, 17.47))
            ThreePointArc((-69.81, 17.47), (-71.931320344, 16.591320344), (-72.81, 14.47))
            Line((-72.81, 14.47), (-72.81, -4.31))
            ThreePointArc((-72.81, -4.31), (-71.931320344, -6.431320344), (-69.81, -7.31))
        make_face(mode=Mode.SUBTRACT)
    extrude(amount=-CUT_EXTRUDE5_DEPTH, mode=Mode.SUBTRACT)


solid = part.part
